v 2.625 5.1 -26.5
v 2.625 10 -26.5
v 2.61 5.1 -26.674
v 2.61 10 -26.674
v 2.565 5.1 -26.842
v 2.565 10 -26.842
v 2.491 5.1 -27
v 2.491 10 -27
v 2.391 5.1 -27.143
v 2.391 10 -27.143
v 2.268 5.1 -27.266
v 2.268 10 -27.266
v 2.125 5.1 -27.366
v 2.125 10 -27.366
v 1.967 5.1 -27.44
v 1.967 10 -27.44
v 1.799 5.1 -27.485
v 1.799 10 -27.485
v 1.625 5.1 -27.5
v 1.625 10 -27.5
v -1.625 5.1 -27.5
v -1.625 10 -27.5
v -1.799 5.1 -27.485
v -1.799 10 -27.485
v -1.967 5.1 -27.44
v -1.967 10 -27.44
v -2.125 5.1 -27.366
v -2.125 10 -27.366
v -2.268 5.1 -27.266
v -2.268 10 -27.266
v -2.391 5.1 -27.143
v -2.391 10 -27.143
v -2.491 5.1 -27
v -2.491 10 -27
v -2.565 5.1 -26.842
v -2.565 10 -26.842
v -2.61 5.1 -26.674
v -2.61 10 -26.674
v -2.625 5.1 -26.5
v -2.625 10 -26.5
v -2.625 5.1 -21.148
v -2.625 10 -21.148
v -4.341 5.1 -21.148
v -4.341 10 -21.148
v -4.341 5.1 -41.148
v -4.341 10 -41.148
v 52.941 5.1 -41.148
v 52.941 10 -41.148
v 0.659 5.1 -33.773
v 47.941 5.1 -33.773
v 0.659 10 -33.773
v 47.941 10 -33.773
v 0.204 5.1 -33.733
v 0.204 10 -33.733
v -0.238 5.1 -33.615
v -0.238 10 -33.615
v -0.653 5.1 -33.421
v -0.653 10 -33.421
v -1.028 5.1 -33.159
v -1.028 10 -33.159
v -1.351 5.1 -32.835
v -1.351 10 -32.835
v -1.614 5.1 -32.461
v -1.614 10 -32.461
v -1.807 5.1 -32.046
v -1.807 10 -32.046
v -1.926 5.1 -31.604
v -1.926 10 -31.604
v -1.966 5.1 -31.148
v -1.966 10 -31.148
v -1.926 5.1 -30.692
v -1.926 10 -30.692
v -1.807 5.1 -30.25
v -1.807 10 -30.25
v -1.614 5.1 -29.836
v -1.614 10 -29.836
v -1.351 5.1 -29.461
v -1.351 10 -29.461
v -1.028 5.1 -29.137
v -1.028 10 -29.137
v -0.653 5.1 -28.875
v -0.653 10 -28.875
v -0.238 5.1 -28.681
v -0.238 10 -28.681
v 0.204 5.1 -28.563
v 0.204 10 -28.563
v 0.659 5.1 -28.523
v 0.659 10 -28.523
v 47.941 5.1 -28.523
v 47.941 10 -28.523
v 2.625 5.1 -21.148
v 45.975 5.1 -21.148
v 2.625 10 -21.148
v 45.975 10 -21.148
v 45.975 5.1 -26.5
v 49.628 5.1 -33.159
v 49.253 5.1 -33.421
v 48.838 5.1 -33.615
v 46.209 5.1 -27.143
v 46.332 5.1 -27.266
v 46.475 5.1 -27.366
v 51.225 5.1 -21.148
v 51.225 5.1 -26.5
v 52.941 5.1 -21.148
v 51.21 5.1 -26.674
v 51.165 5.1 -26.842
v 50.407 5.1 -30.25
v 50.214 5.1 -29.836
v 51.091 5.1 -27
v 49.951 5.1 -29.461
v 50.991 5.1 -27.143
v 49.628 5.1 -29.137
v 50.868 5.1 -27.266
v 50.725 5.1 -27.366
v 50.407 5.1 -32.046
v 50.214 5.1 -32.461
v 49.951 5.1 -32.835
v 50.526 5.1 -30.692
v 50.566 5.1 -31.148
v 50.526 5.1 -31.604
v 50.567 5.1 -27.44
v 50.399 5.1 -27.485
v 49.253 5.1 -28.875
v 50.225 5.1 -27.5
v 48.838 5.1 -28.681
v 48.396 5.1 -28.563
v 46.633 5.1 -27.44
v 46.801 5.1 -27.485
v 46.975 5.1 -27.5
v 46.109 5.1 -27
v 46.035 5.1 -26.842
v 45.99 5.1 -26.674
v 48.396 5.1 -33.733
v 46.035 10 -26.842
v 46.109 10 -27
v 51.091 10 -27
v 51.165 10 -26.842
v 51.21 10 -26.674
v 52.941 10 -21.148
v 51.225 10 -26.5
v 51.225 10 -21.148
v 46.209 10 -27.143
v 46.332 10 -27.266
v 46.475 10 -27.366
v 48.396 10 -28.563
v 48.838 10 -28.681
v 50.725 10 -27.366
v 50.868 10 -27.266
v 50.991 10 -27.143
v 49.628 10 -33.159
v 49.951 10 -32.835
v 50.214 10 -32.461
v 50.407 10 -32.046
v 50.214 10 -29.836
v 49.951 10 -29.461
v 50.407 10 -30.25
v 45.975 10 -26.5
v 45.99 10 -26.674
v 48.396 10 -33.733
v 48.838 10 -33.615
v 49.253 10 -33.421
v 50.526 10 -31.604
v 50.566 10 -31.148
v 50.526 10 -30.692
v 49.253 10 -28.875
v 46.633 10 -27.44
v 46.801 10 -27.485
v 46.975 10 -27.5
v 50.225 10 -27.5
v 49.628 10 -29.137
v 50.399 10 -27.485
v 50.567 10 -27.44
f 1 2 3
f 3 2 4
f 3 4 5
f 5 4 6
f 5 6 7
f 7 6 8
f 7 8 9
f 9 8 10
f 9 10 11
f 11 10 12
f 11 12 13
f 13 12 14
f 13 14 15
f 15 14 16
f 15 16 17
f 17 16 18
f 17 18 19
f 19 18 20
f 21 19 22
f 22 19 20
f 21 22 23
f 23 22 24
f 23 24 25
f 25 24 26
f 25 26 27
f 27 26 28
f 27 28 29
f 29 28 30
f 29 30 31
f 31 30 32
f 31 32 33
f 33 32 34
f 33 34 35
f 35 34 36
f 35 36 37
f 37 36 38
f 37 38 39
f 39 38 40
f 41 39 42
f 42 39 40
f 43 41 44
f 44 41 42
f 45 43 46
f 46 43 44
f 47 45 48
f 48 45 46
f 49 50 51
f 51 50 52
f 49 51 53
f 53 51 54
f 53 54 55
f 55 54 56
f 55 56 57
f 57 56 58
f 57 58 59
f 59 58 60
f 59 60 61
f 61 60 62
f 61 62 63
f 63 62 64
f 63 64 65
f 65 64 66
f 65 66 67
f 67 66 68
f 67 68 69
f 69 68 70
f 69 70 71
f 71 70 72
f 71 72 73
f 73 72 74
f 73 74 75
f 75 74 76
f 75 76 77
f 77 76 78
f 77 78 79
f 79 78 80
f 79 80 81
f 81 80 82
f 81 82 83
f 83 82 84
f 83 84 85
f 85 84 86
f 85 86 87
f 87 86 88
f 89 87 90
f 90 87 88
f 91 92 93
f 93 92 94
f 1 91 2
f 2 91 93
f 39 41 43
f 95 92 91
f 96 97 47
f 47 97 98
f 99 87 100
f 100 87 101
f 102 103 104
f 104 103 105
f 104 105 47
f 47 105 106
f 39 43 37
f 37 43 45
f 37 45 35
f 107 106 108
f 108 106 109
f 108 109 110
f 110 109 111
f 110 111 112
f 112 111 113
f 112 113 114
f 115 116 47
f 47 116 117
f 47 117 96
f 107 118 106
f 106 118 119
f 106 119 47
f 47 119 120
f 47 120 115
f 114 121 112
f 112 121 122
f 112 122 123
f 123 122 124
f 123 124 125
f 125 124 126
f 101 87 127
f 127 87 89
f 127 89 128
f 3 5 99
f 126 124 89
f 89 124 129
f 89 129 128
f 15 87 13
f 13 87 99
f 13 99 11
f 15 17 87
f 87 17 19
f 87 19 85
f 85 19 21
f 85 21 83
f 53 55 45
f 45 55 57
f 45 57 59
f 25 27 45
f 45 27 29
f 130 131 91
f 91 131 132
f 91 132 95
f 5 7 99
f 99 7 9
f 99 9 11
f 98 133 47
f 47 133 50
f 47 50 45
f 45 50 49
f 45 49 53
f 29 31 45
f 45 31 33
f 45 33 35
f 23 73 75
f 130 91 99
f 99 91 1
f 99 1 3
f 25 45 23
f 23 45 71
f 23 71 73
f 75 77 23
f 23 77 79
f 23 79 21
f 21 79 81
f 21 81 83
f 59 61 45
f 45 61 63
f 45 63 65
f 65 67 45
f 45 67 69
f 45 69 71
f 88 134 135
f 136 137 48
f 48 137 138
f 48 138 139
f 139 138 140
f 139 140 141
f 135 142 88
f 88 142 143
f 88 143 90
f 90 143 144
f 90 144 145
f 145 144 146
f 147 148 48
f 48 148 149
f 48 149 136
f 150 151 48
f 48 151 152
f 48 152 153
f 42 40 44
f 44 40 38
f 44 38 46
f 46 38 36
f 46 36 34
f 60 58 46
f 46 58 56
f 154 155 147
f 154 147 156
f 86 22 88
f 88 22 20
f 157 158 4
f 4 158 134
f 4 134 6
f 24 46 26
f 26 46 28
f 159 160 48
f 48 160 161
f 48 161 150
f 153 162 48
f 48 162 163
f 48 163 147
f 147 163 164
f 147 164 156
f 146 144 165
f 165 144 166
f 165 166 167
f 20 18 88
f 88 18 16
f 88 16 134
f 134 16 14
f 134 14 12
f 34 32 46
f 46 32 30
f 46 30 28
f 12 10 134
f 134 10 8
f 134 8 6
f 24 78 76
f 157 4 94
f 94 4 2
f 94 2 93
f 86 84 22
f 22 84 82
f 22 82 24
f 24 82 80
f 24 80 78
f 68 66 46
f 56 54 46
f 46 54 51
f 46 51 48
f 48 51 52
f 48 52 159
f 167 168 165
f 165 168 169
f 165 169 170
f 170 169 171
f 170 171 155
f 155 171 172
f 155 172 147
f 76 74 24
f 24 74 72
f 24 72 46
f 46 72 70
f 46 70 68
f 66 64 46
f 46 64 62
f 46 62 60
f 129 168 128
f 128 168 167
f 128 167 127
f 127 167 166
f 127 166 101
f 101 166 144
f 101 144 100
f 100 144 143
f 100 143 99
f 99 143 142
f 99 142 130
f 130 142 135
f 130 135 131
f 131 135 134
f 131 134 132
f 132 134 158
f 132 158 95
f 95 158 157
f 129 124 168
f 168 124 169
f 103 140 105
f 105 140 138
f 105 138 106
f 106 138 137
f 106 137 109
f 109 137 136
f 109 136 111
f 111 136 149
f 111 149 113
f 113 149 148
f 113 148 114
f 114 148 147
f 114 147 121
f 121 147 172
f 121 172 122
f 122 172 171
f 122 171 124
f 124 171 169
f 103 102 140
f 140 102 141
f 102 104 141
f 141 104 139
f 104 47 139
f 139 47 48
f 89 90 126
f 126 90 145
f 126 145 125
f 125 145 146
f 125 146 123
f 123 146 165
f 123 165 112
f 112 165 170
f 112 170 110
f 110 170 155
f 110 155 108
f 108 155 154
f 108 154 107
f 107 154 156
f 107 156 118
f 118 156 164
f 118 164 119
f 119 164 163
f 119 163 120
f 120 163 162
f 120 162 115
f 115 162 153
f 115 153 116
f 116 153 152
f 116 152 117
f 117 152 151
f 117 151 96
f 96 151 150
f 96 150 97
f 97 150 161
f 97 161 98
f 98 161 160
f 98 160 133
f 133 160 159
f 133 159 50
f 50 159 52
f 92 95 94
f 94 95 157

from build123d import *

# Parameters (mm, degrees)
BOSS_EXTRUDE5_DEPTH   = 10
CUT_EXTRUDE6_DEPTH    = 5
FILLET4_R             = 1
FILLET4_OF_MIRROR25_R = 1
BOSS_EXTRUDE6_DEPTH   = 4.9
MIRROR27_START        = 5.1
MIRROR27_DEPTH        = 4.9


# Read off the part's stored shape, not the designer's step: Mirror27
with BuildPart() as part:
    # Sketch15 → Boss-Extrude5 (new body)
    with BuildSketch(Plane(origin=(0, 0, 0), x_dir=(1, 0, 0), z_dir=(0, 1, 0))):
        Polygon((24.3, 76.900659127), (-6.625, 76.900659127), (-6.625, -4.5), (24.3, -4.5), (24.3, 44.900659127), (21.675, 44.900659127), (21.675, 47.400659127), (21.675, 72.400659127), (21.675, 74.900659127), (24.3, 74.900659127), align=None)
        Polygon((-2.625, 25), (-2.625, 0), (-2.625, -2.5), (0, -2.5), (2.625, -2.5), (2.625, 0), (2.625, 25), (2.625, 27.5), (0, 27.5), (-2.625, 27.5), align=None, mode=Mode.SUBTRACT)
    boss_extrude5 = extrude(amount=BOSS_EXTRUDE5_DEPTH)

    # Sketch18 → Cut-Extrude6 (cut)
    with BuildSketch(Plane(origin=(0, 10, 0), x_dir=(1, 0, 0), z_dir=(0, 1, 0))):
        Polygon((21.675, 51.3980649), (-4.44053483, 51.3980649), (-4.44053483, 20.8980649), (24.3, 20.8980649), (24.3, 51.3980649), align=None)
    cut_extrude6 = extrude(amount=-CUT_EXTRUDE6_DEPTH, mode=Mode.SUBTRACT)

    # Fillet4
    fillet4_edges = [part.edges().sort_by_distance(p)[0] for p in [
        (21.675, 5, -74.900659127),
        (-2.625, 5, 2.5),
        (2.625, 5, 2.5),
        (2.625, 2.5, -27.5),
        (-2.625, 2.5, -27.5),
        (21.675, 2.5, -44.900659127),
    ]]
    fillet(fillet4_edges, radius=FILLET4_R)

    # Mirror25: Boss-Extrude5, Cut-Extrude6 across plane
    add(boss_extrude5.mirror(Plane(origin=(24.3, 10, 4.5), x_dir=(0, 0, 1), z_dir=(-1, 0, 0))))
    add(cut_extrude6.mirror(Plane(origin=(24.3, 10, 4.5), x_dir=(0, 0, 1), z_dir=(-1, 0, 0))), mode=Mode.SUBTRACT)

    # Fillet4 of Mirror25
    fillet4_of_mirror25_edges = [part.edges().sort_by_distance(p)[0] for p in [
        (26.925, 5, -74.900659127),
        (51.225, 5, 2.5),
        (45.975, 5, 2.5),
        (45.975, 2.5, -27.5),
        (51.225, 2.5, -27.5),
        (26.925, 2.5, -44.900659127),
    ]]
    fillet(fillet4_of_mirror25_edges, radius=FILLET4_OF_MIRROR25_R)


with BuildPart() as body_2:
    # Sketch19 → Boss-Extrude6 (new body)
    with BuildSketch(Plane(origin=(0, 10, 0), x_dir=(1, 0, 0), z_dir=(0, 1, 0))):
        with BuildLine():
            Line((2.625, 21.1480649), (2.625, 26.5))
            ThreePointArc((2.625, 26.5), (2.332106781, 27.207106781), (1.625, 27.5))
            Line((1.625, 27.5), (-1.625, 27.5))
            ThreePointArc((-1.625, 27.5), (-2.332106781, 27.207106781), (-2.625, 26.5))
            Line((-2.625, 26.5), (-2.625, 21.1480649))
            Line((-2.625, 21.1480649), (-4.34053483, 21.1480649))
            Line((-4.34053483, 21.1480649), (-4.34053483, 41.1480649))
            Line((-4.34053483, 41.1480649), (24.3, 41.1480649))
            Line((24.3, 41.1480649), (24.3, 33.7730649))
            Line((24.3, 33.7730649), (0.65946517, 33.7730649))
            ThreePointArc((0.65946517, 33.7730649), (-1.96553483, 31.1480649), (0.65946517, 28.5230649))
            Line((0.65946517, 28.5230649), (24.3, 28.5230649))
            Line((24.3, 28.5230649), (24.3, 21.1480649))
            Line((24.3, 21.1480649), (2.625, 21.1480649))
        make_face()
    extrude(amount=-BOSS_EXTRUDE6_DEPTH)

    # Mirror27 outline → Mirror27 (add)
    with BuildSketch(Plane(origin=(0, 0, 0), x_dir=(1, 0, 0), z_dir=(0, 1, 0)).offset(MIRROR27_START)):
        with BuildLine():
            ThreePointArc((45.975, 26.5), (46.267893219, 27.207106781), (46.975, 27.5))
            Line((46.975, 27.5), (50.225, 27.5))
            ThreePointArc((50.225, 27.5), (50.932106781, 27.207106781), (51.225, 26.5))
            Line((51.225, 26.5), (51.225, 21.1480649))
            Line((51.225, 21.1480649), (52.94053483, 21.1480649))
            Line((52.94053483, 21.1480649), (52.94053483, 41.1480649))
            Line((52.94053483, 41.1480649), (24.3, 41.1480649))
            Line((24.3, 41.1480649), (24.3, 33.7730649))
            Line((24.3, 33.7730649), (47.94053483, 33.7730649))
            ThreePointArc((47.94053483, 33.7730649), (50.56553483, 31.1480649), (47.94053483, 28.5230649))
            Line((47.94053483, 28.5230649), (24.3, 28.5230649))
            Line((24.3, 28.5230649), (24.3, 21.1480649))
            Line((24.3, 21.1480649), (45.975, 21.1480649))
            Line((45.975, 21.1480649), (45.975, 26.5))
        make_face()
    extrude(amount=MIRROR27_DEPTH)


solid = body_2.part
